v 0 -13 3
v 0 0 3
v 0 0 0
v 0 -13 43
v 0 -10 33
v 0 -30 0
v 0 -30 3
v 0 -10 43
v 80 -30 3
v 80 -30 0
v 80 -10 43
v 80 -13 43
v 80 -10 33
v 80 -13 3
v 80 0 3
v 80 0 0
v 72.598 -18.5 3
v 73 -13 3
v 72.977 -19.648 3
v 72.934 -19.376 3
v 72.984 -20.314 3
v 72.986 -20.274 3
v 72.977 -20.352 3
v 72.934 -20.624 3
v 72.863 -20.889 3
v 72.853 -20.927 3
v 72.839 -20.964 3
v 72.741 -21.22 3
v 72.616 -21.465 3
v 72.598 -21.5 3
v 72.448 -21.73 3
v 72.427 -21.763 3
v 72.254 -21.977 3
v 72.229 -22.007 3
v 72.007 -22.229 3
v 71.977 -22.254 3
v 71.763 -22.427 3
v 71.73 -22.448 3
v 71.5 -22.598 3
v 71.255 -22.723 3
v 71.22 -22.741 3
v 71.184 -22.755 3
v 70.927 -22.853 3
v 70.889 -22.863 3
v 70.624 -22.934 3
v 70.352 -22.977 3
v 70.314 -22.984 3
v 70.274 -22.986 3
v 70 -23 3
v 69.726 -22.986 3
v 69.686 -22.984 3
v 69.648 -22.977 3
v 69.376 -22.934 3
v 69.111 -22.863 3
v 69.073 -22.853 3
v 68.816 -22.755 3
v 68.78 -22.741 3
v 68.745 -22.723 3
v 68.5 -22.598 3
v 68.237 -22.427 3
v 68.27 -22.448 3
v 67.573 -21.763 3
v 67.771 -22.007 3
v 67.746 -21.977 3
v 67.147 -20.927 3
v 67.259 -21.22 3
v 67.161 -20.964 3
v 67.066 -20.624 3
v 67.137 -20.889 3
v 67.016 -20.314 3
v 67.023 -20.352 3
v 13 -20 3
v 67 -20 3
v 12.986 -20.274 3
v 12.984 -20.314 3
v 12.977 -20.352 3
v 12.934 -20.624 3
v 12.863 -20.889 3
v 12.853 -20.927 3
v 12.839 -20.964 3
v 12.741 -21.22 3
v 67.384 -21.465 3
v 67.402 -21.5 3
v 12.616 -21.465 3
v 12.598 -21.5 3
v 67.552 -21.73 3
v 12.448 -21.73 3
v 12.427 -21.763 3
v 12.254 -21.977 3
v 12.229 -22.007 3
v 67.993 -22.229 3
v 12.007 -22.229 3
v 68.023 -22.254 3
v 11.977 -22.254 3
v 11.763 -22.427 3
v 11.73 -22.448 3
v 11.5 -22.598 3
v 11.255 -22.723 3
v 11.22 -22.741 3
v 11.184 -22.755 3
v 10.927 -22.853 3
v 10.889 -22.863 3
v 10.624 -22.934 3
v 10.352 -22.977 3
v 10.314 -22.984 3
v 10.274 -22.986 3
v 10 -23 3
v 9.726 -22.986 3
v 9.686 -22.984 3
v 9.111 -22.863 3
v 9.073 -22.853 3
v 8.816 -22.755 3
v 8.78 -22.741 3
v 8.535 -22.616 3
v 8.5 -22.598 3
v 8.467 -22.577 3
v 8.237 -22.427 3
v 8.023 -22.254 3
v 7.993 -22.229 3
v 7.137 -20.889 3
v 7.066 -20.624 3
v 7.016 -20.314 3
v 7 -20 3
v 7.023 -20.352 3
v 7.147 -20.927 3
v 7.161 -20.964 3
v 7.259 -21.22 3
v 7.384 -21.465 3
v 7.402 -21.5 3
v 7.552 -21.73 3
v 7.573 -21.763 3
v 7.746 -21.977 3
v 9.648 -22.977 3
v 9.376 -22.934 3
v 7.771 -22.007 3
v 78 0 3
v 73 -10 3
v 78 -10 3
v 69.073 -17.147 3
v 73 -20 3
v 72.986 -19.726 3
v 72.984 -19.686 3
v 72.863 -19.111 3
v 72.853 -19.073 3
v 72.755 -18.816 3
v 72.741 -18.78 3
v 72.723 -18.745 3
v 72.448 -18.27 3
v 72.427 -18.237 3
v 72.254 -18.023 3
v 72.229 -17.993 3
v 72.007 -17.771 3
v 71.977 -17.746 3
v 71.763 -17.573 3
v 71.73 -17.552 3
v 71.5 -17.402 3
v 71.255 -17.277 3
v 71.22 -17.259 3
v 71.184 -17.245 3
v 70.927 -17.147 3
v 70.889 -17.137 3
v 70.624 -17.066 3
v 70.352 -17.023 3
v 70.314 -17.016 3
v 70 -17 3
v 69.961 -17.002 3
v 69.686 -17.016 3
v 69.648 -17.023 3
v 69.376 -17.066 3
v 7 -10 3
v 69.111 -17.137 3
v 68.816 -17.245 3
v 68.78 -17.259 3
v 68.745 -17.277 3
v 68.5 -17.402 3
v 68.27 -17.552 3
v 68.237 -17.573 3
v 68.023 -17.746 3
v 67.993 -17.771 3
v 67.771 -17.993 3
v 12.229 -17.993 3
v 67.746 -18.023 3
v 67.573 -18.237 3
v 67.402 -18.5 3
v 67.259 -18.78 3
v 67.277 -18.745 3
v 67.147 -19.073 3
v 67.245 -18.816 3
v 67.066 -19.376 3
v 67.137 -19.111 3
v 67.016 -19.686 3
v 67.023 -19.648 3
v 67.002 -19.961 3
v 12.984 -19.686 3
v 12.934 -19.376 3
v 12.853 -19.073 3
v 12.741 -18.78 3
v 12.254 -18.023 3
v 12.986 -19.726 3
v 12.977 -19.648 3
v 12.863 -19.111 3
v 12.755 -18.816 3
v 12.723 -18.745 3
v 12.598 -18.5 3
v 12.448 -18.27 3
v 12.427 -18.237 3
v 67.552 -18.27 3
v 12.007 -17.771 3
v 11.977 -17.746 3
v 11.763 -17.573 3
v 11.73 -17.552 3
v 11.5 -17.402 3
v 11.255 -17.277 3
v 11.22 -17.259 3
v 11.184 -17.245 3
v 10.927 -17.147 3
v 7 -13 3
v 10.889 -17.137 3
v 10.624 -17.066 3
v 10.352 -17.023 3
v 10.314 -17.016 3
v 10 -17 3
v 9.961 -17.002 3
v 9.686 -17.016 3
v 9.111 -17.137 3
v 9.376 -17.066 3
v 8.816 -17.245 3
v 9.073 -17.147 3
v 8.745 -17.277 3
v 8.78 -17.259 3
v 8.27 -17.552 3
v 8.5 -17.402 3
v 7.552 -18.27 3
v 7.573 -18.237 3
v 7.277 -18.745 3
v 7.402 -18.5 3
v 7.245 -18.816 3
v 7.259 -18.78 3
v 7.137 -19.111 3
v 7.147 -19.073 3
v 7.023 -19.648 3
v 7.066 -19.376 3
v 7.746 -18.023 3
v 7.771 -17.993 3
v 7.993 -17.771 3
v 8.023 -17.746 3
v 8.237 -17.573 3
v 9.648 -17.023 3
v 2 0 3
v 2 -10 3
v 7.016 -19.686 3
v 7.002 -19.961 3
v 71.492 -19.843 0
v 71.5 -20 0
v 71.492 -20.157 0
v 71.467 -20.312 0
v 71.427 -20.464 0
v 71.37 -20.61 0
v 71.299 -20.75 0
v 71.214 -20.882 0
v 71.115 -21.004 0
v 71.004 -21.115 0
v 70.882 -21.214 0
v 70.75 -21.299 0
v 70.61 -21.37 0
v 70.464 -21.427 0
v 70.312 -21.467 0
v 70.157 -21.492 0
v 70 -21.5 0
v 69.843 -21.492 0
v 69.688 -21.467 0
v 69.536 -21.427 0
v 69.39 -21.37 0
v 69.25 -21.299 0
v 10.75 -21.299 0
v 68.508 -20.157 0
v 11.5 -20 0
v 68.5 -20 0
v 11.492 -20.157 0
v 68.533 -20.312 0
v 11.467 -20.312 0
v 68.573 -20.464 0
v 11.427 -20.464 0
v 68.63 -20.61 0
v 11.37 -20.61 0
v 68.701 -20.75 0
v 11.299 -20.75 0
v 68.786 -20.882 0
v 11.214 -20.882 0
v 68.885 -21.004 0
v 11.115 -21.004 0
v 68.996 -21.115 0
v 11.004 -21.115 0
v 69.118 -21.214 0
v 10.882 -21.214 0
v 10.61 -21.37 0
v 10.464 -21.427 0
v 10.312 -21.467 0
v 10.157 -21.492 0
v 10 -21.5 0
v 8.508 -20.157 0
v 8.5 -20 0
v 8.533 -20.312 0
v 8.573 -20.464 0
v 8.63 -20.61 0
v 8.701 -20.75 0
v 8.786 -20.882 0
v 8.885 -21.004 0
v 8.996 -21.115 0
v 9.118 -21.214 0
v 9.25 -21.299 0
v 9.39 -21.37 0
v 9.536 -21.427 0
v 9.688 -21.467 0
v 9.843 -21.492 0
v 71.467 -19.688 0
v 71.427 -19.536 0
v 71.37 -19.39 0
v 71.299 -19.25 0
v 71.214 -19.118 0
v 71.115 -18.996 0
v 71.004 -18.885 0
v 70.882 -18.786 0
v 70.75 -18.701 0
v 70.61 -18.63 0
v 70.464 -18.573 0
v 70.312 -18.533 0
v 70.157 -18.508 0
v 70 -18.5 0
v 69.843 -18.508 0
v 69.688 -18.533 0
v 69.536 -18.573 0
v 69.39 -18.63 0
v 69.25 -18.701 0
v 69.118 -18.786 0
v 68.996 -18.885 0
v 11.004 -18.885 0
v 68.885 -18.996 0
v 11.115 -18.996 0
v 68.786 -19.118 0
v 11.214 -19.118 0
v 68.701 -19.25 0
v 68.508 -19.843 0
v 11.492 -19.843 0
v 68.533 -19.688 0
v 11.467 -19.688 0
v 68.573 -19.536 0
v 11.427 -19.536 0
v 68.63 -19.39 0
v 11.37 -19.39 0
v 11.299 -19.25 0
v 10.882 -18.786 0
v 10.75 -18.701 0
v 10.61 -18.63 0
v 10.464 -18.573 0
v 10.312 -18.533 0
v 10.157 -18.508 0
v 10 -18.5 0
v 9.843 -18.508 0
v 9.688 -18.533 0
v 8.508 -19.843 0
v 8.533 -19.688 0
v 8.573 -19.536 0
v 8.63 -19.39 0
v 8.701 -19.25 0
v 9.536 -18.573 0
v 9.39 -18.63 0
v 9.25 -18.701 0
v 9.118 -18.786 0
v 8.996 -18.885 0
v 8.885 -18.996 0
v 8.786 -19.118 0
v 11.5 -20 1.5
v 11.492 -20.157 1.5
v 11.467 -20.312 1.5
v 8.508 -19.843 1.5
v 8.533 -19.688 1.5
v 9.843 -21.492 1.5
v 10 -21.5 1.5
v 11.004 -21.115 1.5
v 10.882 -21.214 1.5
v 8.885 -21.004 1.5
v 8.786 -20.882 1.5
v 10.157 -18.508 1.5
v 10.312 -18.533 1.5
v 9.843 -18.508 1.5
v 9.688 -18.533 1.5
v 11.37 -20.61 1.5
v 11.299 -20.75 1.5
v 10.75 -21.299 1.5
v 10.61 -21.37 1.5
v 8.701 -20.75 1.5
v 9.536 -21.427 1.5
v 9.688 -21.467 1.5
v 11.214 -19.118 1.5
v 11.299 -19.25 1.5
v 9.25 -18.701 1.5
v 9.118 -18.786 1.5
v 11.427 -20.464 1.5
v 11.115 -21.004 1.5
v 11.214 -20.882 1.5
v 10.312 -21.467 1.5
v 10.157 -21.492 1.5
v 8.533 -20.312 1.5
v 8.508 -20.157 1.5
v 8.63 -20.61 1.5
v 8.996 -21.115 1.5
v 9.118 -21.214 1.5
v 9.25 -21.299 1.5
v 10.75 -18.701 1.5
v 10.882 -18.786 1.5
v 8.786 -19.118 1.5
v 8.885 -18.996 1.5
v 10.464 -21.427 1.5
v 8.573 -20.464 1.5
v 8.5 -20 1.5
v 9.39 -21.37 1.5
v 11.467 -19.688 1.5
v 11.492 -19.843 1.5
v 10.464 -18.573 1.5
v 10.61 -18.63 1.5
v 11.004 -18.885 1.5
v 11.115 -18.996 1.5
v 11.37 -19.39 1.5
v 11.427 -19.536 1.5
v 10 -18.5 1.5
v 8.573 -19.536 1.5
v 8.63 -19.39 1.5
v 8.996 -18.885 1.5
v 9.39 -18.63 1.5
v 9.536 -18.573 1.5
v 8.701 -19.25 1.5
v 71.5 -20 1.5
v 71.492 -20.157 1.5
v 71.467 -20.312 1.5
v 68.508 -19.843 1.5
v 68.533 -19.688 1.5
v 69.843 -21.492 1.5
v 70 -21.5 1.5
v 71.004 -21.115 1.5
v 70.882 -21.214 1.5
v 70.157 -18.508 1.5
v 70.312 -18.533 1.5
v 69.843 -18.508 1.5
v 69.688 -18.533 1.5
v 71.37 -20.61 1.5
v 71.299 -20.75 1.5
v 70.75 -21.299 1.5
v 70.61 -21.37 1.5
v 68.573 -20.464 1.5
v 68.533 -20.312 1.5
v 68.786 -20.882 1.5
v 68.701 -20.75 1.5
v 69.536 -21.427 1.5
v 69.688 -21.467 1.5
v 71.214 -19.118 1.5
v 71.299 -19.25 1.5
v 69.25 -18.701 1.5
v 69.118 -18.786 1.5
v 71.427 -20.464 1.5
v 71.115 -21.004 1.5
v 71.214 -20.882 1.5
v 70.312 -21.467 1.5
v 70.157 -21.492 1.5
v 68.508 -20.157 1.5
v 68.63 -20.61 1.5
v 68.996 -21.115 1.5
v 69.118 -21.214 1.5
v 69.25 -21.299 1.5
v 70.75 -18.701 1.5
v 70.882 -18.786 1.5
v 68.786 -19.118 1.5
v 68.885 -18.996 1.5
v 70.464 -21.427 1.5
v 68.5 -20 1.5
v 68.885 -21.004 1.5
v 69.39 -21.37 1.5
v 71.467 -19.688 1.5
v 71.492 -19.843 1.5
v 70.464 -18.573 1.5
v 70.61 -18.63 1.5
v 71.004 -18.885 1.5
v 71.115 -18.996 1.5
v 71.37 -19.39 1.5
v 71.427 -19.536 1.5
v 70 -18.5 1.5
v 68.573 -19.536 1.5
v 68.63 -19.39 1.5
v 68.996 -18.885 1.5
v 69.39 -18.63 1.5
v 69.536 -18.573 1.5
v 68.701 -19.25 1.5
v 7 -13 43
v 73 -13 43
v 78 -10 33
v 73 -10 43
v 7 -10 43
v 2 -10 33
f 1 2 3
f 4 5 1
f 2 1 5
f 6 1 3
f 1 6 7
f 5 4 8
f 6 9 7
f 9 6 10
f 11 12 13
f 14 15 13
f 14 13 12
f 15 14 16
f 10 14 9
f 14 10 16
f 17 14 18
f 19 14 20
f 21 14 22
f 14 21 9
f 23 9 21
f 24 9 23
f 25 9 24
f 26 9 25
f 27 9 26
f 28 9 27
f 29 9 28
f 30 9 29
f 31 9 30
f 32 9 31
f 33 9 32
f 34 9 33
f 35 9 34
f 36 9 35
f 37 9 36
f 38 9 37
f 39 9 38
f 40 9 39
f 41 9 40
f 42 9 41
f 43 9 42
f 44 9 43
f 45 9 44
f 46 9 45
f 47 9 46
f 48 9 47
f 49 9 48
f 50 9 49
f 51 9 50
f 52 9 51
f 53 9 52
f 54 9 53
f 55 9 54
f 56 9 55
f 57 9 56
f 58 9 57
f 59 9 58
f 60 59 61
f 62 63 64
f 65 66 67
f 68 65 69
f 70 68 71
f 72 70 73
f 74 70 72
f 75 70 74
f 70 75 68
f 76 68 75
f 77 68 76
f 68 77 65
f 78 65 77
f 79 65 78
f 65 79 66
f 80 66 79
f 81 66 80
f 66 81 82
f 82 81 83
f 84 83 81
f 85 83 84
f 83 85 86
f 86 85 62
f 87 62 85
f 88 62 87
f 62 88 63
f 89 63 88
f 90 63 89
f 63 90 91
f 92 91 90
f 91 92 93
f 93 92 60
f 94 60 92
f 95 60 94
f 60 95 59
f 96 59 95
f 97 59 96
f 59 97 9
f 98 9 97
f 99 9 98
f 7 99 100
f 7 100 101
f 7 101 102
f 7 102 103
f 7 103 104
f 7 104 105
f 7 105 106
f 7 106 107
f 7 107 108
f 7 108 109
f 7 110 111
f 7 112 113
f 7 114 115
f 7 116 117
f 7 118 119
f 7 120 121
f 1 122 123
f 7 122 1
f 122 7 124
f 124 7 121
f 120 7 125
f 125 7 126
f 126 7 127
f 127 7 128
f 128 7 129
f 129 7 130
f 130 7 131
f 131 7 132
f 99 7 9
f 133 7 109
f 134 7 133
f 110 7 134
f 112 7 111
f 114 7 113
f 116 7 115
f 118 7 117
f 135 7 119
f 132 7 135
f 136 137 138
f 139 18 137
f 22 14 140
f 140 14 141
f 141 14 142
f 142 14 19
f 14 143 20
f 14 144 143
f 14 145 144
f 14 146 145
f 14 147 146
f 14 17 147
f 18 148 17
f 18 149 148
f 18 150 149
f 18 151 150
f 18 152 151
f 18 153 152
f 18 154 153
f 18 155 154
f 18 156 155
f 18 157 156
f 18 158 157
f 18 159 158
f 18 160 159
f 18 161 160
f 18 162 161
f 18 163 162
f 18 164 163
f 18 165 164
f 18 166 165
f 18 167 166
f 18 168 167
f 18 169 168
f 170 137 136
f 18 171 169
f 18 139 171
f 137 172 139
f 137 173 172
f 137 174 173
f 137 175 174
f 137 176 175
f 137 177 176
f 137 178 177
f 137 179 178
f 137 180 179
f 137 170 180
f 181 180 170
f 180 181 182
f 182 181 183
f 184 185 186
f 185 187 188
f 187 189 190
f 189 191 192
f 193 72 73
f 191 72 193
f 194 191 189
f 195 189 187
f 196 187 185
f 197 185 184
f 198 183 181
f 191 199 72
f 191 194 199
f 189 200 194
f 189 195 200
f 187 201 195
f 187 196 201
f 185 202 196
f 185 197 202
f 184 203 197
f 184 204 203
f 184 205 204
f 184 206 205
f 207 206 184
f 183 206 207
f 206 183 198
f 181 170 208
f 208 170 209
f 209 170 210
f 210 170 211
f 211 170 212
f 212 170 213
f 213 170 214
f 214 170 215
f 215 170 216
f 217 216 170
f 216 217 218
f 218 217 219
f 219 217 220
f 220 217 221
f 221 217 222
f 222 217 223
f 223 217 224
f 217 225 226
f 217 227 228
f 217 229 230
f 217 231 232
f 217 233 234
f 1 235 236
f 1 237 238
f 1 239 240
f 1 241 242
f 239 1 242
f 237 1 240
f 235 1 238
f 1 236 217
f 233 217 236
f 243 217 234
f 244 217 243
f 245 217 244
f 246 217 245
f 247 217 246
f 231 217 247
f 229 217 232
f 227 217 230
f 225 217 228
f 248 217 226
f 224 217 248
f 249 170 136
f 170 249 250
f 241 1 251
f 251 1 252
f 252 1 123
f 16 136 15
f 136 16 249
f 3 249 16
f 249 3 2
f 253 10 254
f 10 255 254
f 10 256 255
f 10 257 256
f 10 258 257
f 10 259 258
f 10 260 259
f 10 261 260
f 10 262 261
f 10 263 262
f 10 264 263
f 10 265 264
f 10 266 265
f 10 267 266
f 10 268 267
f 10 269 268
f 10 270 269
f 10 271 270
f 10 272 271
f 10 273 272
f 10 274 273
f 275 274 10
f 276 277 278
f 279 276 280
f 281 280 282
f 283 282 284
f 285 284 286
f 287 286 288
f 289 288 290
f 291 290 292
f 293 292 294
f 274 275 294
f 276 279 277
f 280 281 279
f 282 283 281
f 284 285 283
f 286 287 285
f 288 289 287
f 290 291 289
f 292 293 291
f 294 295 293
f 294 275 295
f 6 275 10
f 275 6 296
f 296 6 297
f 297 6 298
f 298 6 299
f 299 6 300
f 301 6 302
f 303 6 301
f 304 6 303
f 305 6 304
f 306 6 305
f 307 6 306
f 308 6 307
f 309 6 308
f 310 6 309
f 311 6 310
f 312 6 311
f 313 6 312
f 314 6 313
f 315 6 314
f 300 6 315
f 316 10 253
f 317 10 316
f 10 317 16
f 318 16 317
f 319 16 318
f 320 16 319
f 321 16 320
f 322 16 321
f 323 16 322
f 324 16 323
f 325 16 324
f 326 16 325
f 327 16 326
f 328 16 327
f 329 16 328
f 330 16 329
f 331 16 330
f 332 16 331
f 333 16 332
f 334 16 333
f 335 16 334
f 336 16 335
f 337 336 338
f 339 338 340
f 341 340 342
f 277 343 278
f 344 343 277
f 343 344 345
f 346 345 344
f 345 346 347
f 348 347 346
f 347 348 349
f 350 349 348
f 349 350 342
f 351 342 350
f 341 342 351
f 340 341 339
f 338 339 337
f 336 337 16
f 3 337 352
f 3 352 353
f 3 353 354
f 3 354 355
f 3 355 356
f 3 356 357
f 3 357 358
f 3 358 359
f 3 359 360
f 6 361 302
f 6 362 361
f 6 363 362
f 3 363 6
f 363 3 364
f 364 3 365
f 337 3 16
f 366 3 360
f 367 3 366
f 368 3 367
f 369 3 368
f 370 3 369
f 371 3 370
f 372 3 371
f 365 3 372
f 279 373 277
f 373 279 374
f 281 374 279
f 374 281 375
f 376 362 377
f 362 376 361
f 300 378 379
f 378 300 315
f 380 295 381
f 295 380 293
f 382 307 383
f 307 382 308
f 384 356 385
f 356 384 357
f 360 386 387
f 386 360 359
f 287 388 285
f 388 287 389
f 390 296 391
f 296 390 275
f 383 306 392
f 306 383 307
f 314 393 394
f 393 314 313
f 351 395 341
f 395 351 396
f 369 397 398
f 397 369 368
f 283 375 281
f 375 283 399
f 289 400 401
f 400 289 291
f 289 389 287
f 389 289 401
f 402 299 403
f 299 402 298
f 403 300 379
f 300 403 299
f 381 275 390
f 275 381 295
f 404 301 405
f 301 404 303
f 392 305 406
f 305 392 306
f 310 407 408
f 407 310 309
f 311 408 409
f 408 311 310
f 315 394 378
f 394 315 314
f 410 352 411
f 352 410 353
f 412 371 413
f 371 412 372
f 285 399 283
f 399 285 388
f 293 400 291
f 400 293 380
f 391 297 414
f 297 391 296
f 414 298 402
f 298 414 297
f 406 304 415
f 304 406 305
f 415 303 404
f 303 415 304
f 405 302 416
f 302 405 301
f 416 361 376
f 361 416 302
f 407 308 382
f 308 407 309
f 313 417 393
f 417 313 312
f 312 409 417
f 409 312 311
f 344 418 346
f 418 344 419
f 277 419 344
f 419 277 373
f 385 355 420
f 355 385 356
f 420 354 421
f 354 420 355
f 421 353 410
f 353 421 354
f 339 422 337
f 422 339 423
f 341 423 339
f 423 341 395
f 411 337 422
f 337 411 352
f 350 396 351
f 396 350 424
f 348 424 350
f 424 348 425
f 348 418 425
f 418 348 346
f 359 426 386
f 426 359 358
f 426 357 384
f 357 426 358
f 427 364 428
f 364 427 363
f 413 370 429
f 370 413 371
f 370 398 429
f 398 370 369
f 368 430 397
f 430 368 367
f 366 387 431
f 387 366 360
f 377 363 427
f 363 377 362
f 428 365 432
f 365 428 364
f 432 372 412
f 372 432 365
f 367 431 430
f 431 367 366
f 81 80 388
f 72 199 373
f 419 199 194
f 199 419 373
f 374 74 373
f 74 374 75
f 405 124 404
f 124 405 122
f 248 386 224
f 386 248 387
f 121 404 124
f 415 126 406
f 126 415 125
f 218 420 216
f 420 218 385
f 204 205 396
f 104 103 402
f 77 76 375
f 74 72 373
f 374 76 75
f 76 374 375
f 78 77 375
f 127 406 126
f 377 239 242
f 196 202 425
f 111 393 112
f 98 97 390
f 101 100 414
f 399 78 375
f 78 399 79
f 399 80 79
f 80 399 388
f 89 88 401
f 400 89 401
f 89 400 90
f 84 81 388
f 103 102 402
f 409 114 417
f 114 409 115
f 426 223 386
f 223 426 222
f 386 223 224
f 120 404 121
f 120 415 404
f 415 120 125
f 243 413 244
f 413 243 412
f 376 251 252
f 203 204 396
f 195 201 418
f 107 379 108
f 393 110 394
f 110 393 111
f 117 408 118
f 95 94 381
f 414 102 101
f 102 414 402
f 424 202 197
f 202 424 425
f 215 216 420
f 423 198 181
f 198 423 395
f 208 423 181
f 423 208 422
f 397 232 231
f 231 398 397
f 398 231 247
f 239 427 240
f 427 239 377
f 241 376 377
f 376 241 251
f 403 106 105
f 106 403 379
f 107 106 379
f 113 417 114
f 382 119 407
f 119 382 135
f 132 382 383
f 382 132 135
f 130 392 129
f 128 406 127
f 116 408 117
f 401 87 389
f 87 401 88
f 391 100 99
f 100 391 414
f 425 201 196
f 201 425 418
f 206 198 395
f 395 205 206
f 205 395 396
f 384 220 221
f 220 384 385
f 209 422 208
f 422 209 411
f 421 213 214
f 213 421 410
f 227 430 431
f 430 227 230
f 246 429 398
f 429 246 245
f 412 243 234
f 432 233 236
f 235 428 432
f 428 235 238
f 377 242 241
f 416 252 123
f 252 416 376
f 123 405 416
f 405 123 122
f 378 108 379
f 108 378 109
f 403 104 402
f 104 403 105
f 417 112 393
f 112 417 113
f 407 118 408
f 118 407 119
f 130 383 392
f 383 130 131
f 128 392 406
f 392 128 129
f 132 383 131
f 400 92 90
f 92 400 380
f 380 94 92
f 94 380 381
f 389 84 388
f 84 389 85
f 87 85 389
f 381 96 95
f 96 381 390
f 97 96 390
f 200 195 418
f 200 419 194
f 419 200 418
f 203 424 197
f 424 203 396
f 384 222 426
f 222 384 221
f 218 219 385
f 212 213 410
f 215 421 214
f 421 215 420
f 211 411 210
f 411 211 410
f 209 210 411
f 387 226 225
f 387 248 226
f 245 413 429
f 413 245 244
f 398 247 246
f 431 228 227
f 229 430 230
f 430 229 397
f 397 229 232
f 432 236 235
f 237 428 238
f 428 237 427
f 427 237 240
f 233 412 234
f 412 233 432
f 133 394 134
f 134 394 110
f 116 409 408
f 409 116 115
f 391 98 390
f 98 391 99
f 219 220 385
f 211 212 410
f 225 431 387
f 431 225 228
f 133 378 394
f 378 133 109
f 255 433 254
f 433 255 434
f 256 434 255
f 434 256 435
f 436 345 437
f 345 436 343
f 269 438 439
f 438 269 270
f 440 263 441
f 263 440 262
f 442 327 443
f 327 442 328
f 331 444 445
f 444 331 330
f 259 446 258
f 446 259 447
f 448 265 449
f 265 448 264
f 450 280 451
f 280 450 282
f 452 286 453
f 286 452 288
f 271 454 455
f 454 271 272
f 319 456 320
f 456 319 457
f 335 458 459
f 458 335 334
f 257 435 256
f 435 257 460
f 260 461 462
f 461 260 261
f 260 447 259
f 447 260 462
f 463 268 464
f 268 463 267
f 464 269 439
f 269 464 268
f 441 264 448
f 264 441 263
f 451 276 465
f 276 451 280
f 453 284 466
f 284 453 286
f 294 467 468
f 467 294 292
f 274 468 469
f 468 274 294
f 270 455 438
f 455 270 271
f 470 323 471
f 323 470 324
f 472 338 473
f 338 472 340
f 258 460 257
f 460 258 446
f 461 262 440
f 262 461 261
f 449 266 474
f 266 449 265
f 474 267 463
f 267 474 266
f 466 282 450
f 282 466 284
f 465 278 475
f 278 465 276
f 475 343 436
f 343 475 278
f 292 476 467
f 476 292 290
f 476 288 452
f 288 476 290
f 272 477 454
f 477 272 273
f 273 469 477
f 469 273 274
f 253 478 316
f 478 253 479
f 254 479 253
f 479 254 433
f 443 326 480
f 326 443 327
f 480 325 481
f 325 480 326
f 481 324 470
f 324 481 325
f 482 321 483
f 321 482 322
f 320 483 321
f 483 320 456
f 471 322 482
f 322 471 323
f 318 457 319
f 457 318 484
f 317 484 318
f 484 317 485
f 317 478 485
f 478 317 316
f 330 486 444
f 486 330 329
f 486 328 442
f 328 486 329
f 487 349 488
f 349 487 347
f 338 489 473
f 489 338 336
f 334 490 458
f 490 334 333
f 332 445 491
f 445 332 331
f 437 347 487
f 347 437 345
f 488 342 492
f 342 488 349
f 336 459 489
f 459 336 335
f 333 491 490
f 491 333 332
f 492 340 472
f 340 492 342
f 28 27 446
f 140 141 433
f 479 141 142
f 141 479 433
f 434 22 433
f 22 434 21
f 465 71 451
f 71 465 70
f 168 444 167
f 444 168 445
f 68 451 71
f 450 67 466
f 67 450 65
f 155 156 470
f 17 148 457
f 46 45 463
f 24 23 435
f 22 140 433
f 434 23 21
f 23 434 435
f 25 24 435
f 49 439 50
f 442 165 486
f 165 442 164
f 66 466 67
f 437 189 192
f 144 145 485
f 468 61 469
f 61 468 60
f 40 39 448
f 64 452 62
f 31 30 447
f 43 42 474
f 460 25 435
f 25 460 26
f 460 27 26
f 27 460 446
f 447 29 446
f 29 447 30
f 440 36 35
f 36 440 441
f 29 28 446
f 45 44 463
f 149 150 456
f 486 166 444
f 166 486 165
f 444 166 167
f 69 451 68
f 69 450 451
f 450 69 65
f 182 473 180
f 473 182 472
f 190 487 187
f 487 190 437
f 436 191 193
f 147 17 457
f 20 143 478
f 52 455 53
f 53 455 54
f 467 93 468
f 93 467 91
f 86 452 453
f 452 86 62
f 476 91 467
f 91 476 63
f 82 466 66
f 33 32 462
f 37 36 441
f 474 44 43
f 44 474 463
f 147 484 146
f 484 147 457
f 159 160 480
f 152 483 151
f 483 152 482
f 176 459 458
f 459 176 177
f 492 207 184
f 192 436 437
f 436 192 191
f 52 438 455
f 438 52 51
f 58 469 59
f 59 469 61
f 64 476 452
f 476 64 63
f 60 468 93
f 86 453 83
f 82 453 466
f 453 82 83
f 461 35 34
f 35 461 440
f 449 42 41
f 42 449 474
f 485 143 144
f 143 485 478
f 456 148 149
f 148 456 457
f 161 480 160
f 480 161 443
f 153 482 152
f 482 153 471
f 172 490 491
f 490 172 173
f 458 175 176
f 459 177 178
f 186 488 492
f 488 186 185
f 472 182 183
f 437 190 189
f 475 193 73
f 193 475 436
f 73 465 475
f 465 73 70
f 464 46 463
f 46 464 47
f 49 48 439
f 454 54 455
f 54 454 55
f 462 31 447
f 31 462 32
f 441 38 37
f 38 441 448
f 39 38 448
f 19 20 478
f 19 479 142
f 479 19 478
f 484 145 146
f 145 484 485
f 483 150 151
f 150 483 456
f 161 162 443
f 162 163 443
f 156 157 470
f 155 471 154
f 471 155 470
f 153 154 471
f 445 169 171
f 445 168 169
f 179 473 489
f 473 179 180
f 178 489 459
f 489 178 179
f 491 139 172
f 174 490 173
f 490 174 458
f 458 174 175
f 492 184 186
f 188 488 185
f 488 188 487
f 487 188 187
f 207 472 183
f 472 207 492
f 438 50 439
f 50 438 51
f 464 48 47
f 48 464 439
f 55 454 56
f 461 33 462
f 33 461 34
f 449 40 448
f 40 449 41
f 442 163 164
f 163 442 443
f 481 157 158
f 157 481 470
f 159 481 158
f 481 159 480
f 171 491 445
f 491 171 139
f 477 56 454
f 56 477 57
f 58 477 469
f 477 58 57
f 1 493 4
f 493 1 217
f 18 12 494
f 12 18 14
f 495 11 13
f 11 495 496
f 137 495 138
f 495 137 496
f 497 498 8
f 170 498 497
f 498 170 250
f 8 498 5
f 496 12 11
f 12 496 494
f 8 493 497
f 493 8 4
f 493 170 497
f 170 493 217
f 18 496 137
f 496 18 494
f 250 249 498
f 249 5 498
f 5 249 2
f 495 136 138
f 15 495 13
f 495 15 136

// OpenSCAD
$fn = 60;

rotate([90, 0, 0]) {
 difference () {
   cube([80, 3, 30]);
   translate([10, 4, 20]) rotate([90, 0, 0]) cylinder(5, r=1.5);
   translate([10, 1.5, 20]) rotate([-90, 0, 0]) cylinder(2, r1=1.5, r2=3.5);
   translate([70, 4, 20]) rotate([90, 0, 0]) cylinder(5, r=1.5);
   translate([70, 1.5, 20]) rotate([-90, 0, 0]) cylinder(2, r1=1.5, r2=3.5);
 

 
   }
 
difference () {
  translate([0, 3, 10]) cube([80, 40, 3]);
  translate([(80-66)/2, 3, 9]) cube([66, 41, 5]);
}




translate([2, 3, 0]) rotate([0, -90, 0]) {
linear_extrude(height=2) {
polygon([[0, 0], [10, 0], [10, 30]]);
}
}

translate([80, 3, 0]) rotate([0, -90, 0]) {
linear_extrude(height=2) {
polygon([[0, 0], [10, 0], [10, 30]]);
}
}

}
